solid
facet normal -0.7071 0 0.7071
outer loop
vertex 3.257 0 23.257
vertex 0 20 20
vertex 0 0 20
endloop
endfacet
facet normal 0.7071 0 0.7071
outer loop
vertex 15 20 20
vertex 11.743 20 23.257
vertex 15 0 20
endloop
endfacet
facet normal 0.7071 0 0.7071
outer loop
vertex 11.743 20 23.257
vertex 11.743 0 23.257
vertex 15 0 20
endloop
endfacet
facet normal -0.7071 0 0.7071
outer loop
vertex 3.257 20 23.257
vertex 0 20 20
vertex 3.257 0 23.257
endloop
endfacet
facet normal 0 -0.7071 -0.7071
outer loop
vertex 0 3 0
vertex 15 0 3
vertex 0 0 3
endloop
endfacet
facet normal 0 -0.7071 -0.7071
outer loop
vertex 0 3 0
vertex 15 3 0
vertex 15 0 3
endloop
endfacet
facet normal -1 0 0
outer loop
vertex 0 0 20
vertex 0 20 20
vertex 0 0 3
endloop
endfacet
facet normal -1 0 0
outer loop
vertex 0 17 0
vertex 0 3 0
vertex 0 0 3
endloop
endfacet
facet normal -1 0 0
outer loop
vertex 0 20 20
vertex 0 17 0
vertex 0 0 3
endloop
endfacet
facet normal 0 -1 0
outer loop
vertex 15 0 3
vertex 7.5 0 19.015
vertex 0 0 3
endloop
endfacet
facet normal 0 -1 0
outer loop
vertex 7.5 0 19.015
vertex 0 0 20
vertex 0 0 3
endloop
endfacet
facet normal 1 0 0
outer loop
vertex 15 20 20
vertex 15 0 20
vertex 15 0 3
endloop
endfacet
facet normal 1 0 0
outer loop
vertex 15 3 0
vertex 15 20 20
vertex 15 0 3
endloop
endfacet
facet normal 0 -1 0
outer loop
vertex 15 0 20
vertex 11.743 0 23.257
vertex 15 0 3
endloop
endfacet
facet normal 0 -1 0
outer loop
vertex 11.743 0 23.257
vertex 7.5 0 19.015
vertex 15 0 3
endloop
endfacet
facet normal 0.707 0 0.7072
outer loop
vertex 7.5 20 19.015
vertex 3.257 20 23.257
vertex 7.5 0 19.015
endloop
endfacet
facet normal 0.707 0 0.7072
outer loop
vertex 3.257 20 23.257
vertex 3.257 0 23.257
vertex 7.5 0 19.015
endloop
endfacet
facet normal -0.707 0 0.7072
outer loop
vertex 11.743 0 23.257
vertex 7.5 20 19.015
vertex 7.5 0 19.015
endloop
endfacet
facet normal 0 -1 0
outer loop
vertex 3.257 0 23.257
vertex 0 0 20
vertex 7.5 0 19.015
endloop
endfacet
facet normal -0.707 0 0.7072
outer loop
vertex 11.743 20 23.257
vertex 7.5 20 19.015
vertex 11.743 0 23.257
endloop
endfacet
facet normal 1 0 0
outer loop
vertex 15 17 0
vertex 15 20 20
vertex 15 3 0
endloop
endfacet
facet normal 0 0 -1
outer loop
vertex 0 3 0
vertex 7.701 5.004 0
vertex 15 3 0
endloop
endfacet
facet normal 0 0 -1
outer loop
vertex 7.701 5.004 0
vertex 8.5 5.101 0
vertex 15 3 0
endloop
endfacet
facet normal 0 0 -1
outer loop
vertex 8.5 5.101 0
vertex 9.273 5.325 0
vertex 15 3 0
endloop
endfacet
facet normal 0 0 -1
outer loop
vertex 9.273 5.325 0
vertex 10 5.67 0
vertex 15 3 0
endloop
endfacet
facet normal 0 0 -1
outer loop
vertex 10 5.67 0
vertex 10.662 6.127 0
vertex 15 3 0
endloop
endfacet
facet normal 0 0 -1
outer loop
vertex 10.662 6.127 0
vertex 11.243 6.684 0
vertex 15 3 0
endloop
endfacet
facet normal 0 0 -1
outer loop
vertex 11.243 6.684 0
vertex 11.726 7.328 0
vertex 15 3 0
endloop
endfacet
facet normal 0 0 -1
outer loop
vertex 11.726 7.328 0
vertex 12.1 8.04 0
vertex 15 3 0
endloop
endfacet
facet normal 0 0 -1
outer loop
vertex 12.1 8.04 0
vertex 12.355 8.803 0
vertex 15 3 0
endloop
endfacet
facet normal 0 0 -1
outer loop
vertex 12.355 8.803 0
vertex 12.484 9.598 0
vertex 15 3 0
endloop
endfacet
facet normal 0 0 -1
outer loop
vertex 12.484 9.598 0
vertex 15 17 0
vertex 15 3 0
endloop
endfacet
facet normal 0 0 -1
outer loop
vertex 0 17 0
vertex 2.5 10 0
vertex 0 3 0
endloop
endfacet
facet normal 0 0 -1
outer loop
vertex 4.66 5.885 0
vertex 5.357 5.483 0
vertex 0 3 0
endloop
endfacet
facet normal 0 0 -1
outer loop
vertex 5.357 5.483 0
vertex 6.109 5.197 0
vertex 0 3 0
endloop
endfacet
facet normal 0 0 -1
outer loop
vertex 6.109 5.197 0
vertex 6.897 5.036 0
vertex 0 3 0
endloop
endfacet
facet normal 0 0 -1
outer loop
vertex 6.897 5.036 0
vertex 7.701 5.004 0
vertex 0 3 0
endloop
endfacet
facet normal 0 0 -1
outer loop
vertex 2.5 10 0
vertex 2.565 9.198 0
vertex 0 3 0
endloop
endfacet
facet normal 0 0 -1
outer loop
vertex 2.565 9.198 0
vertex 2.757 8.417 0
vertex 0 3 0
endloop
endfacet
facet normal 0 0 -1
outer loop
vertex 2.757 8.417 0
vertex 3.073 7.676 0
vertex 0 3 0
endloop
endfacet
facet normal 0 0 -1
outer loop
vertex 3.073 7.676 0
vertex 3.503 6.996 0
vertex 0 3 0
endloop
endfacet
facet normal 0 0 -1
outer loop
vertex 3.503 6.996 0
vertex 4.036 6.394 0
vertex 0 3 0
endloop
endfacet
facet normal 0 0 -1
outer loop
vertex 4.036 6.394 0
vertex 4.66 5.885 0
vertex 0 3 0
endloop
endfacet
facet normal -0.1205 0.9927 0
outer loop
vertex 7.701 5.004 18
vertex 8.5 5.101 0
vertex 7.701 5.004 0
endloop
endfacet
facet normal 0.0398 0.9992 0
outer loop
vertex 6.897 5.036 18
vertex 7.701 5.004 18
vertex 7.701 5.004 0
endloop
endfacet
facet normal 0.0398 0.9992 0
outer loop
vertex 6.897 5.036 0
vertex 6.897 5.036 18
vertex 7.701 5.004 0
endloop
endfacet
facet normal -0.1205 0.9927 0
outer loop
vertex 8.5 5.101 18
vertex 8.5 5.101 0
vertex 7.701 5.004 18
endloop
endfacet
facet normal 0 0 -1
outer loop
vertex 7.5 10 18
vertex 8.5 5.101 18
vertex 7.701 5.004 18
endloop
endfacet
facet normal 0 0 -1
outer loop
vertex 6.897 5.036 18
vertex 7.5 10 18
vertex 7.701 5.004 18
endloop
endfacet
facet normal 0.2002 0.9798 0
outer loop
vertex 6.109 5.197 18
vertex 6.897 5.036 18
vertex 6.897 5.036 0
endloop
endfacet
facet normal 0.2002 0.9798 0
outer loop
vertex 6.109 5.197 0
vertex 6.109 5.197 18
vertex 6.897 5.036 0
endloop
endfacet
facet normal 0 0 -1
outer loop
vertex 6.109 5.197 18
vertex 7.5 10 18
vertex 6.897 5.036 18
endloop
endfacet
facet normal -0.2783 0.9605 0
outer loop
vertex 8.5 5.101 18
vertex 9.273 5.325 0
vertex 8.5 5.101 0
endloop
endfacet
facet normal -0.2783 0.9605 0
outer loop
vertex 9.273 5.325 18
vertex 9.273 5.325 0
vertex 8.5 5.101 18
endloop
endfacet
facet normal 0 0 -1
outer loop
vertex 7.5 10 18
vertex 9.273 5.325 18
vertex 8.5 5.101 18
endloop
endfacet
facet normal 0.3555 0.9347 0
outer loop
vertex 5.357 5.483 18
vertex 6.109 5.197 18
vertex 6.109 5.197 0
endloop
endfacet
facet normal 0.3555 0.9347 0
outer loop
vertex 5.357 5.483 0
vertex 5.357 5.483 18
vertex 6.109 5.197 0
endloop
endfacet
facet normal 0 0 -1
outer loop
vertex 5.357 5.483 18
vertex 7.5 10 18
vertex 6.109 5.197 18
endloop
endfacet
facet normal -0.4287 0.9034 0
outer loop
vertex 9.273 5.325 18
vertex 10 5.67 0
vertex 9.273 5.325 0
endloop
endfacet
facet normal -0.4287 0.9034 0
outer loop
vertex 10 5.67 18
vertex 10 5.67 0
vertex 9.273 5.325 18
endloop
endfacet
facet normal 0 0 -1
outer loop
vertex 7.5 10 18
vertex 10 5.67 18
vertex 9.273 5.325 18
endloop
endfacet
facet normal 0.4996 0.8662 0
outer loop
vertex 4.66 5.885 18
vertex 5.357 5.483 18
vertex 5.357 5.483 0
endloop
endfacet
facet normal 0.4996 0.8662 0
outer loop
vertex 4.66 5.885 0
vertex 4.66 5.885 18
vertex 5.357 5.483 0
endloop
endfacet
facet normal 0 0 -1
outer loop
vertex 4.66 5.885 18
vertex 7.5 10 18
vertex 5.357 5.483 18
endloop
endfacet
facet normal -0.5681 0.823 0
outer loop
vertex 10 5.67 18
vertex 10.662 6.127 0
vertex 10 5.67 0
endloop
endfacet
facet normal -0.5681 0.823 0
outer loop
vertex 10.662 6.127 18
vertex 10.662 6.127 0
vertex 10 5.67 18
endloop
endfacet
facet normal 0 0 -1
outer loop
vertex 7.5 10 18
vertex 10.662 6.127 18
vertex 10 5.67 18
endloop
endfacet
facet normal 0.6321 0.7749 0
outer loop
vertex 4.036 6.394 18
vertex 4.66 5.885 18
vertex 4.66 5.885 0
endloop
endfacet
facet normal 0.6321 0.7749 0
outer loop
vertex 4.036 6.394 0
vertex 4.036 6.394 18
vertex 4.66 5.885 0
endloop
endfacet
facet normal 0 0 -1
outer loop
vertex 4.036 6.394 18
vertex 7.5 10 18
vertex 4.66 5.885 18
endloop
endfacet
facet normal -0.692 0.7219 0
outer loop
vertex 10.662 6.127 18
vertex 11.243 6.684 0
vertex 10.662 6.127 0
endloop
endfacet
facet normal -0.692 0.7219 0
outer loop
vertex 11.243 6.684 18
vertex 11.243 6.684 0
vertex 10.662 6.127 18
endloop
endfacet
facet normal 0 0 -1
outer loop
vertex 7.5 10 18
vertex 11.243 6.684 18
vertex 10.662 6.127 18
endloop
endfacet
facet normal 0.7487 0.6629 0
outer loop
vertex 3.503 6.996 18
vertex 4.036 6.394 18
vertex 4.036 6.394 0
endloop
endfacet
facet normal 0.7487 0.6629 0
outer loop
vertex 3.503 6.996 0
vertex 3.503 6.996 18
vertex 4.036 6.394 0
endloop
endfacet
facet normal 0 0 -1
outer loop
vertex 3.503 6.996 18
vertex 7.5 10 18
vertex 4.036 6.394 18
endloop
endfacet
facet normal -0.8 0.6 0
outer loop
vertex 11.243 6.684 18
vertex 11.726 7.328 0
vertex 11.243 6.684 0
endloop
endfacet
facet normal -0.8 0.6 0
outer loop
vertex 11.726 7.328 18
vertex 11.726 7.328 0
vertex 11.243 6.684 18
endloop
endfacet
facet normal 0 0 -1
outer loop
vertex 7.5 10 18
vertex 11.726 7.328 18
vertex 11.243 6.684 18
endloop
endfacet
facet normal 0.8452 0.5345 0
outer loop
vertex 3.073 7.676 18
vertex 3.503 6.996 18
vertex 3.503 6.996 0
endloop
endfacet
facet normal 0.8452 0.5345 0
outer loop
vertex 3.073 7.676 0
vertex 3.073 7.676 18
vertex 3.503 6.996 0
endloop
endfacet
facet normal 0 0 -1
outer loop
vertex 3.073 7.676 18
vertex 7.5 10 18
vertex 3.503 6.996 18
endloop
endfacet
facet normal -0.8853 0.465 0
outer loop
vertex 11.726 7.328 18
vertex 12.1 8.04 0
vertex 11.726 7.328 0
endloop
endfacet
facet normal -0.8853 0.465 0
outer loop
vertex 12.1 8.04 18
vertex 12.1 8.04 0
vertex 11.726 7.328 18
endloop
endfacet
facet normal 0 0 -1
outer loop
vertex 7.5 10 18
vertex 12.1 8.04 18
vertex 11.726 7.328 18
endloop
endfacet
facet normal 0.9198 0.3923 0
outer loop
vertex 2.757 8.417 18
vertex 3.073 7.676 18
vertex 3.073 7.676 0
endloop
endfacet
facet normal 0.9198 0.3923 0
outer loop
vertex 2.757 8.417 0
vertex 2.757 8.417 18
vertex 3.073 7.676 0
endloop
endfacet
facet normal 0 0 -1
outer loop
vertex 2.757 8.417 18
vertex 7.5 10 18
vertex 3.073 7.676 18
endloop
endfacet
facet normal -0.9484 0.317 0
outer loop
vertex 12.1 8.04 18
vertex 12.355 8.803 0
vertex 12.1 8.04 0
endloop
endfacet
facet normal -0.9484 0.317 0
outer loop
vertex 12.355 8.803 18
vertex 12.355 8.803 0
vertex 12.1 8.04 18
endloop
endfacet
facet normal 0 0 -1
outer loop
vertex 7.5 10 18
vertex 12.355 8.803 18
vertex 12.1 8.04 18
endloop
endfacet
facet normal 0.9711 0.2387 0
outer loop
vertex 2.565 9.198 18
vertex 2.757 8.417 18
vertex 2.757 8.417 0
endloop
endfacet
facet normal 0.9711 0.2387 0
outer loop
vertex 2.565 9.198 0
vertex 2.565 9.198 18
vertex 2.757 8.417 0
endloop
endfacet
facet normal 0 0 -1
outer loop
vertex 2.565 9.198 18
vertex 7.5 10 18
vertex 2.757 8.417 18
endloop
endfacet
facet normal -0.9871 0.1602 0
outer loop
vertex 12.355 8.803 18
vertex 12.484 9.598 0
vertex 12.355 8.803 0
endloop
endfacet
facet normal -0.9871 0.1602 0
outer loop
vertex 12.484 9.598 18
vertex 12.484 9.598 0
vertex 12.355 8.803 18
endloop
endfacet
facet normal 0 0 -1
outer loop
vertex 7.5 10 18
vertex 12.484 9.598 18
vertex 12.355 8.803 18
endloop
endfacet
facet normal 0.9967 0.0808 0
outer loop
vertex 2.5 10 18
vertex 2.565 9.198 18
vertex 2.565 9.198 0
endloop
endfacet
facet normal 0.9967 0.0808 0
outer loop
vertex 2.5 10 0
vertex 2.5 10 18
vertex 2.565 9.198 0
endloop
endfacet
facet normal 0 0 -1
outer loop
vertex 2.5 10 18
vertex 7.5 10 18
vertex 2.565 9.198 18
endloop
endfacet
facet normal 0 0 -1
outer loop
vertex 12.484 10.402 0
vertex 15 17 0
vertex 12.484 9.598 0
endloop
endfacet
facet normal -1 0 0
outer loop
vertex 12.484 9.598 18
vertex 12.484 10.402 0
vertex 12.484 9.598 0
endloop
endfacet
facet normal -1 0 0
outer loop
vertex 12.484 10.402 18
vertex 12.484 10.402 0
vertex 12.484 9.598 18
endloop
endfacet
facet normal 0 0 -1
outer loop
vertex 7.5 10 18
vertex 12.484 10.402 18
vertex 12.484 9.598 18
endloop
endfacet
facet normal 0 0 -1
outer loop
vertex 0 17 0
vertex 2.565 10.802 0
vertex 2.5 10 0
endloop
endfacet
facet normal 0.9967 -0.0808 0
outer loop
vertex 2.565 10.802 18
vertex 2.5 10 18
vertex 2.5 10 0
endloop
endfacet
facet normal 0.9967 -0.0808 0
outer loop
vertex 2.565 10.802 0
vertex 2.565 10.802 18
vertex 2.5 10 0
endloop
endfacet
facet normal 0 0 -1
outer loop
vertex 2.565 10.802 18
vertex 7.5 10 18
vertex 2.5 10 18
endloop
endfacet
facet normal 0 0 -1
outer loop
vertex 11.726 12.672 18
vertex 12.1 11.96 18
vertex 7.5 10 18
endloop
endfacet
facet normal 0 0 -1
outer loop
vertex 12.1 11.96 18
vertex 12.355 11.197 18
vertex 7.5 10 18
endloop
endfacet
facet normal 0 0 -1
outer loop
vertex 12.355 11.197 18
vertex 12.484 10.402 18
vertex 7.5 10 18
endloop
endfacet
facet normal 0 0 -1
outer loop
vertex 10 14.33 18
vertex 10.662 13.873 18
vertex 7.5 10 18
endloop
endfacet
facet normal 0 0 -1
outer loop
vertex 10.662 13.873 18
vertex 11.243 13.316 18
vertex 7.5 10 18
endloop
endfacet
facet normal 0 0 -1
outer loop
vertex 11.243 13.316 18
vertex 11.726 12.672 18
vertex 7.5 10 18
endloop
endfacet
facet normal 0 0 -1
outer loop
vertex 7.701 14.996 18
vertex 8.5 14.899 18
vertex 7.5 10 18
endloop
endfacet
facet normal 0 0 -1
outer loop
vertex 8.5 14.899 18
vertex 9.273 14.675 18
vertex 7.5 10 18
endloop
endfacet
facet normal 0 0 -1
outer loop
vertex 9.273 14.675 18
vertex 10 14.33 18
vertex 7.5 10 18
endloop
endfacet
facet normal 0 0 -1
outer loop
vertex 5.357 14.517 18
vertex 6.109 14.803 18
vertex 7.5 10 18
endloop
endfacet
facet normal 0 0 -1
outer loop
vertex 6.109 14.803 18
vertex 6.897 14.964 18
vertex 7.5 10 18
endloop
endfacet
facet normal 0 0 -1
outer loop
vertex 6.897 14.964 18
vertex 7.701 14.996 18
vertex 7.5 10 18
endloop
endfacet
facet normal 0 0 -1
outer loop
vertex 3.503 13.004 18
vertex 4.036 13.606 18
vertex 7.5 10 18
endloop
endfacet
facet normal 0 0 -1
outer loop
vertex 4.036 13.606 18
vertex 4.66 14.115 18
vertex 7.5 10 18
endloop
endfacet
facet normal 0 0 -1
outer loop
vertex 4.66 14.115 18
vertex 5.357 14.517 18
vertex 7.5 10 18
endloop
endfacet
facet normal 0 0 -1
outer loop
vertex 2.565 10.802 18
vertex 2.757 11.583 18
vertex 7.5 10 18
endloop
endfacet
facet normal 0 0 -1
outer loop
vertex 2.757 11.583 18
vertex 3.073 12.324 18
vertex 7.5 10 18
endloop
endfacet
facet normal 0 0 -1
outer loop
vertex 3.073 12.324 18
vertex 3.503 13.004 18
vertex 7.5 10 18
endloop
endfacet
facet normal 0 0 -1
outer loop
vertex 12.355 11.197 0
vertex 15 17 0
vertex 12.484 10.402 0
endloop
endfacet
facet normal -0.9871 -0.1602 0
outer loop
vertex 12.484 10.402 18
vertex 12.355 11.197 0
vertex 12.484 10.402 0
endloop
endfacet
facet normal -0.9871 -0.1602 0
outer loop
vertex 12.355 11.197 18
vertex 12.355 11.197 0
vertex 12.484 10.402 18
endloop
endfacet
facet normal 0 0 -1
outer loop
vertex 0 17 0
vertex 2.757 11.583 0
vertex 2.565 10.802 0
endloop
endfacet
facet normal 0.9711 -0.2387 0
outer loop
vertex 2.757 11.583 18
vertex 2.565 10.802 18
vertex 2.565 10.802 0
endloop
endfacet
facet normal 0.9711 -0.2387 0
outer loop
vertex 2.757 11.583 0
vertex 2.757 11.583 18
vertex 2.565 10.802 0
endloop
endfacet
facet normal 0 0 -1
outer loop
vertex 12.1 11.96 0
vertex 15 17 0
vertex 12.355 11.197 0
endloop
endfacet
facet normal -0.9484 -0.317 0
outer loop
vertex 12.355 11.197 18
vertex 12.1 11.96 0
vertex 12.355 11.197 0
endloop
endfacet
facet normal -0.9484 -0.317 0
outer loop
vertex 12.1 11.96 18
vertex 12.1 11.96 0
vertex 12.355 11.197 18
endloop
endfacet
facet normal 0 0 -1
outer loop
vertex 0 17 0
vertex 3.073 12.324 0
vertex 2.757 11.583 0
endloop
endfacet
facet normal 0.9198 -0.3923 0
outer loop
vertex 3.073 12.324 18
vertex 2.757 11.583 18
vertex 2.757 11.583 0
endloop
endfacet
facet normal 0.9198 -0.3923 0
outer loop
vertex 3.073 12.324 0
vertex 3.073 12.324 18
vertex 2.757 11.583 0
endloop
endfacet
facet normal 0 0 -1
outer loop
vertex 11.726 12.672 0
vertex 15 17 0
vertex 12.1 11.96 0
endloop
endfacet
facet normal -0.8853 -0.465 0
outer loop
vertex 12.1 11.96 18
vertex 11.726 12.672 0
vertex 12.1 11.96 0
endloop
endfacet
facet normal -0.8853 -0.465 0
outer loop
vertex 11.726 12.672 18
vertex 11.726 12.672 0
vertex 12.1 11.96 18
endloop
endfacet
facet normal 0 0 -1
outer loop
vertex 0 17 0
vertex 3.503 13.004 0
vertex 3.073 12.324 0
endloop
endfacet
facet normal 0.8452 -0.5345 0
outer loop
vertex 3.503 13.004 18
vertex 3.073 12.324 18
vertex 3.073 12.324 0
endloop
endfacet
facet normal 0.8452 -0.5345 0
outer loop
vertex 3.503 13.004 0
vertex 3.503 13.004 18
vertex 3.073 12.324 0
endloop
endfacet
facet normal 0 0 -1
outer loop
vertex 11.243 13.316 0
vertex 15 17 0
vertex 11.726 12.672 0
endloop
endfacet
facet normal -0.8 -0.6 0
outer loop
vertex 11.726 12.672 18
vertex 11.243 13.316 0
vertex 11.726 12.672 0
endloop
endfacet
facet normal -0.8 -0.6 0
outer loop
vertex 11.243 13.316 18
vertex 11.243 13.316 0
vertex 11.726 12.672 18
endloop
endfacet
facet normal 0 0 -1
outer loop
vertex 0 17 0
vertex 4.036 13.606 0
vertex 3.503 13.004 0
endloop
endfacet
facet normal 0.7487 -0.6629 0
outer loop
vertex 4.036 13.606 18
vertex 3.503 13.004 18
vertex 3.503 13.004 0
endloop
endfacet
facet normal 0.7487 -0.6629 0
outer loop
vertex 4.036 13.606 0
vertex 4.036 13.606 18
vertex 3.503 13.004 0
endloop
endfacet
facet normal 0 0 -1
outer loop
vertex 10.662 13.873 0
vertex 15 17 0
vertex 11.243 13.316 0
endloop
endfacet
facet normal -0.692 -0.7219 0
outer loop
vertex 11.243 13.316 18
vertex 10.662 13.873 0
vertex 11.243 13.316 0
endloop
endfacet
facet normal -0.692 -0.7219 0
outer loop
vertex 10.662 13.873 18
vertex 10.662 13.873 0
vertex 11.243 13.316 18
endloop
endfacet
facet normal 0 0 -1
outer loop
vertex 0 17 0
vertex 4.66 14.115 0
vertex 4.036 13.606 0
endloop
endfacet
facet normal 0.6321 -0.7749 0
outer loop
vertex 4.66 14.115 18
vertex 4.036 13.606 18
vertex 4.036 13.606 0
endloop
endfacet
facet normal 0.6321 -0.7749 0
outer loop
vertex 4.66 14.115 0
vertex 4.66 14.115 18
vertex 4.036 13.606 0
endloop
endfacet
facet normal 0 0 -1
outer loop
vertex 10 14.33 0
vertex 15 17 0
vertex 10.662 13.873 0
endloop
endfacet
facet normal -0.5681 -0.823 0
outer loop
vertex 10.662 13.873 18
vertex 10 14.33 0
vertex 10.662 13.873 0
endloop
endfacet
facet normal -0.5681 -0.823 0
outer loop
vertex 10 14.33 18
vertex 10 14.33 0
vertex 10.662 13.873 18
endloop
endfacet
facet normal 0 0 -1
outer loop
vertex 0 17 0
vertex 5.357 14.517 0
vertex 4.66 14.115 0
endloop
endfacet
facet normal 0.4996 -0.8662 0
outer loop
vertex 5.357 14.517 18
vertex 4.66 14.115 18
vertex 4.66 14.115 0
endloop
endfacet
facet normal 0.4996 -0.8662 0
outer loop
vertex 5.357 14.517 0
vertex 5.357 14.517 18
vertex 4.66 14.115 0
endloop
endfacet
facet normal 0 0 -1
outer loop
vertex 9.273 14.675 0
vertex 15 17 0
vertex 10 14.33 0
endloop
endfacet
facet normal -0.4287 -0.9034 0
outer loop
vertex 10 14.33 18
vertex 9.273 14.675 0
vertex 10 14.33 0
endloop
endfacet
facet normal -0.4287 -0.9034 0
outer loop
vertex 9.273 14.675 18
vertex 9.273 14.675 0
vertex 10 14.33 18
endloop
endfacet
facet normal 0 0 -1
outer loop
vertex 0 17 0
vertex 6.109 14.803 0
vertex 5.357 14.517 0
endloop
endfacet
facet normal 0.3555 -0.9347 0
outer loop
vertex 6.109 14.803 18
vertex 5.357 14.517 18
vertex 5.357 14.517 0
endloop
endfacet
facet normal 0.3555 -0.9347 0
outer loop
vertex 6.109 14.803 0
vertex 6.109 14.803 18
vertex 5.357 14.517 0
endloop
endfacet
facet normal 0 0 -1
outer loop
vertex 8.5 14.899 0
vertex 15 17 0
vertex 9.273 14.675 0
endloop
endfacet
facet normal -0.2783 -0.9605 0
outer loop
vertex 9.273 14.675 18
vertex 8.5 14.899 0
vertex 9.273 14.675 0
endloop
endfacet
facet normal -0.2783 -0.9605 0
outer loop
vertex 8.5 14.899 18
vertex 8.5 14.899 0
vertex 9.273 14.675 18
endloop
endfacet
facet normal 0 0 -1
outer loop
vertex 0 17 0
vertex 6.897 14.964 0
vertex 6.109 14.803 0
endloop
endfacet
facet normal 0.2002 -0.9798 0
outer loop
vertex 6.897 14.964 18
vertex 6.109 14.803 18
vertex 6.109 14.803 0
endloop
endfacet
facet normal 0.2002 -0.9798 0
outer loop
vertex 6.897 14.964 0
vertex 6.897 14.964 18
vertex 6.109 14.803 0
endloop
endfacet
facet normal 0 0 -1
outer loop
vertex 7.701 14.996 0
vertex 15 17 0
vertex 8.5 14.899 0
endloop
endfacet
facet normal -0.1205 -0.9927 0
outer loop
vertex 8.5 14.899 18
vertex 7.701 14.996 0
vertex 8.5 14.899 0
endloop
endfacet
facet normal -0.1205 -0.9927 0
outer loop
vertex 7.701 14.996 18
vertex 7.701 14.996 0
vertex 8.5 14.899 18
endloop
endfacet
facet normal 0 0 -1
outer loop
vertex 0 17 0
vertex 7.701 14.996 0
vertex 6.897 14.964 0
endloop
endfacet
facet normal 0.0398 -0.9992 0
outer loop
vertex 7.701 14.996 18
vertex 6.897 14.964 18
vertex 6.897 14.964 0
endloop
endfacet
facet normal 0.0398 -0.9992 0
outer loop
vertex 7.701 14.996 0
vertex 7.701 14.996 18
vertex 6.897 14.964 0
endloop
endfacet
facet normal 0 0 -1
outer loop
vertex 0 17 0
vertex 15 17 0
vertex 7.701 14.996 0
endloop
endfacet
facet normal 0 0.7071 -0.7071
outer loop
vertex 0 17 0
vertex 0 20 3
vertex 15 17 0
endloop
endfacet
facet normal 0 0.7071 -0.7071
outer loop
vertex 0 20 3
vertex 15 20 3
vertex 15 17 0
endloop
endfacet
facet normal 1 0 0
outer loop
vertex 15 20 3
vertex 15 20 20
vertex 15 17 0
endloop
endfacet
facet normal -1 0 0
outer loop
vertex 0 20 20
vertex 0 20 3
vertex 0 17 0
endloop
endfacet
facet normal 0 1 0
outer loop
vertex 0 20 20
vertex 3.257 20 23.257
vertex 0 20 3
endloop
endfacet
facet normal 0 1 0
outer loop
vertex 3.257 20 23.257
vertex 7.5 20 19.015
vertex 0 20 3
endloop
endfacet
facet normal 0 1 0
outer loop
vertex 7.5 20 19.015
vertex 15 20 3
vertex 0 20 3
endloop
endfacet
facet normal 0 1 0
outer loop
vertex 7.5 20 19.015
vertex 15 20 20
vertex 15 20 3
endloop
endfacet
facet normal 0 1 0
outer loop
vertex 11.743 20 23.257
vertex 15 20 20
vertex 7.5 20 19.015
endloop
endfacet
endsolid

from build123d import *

# Parameters (mm, degrees)
EXTRUDE_1_DEPTH     = 20
SKETCH_2_R          = 5
CUT_EXTRUDE_1_DEPTH = 18
CHAMFER_1_SIZE      = 3


with BuildPart() as part:
    # 草圖1 → 填料-伸長1 (new body)
    with BuildSketch(Plane(origin=(0, 0, 0), x_dir=(1, 0, 0), z_dir=(0, 1, 0))):
        Polygon((0, 0), (0, -20), (3.257359313, -23.257359313), (7.5, -19.014718626), (11.742640687, -23.257359313), (15, -20), (15, 0), align=None)
    extrude(amount=EXTRUDE_1_DEPTH)

    # 草圖2 → 除料-伸長1 (cut)
    with BuildSketch(Plane(origin=(0, 0, 0), x_dir=(-1, 0, 0), z_dir=(0, 0, -1))):
        with Locations((-7.5, 10)):
            Circle(SKETCH_2_R)
    extrude(amount=-CUT_EXTRUDE_1_DEPTH, mode=Mode.SUBTRACT)

    # 導角1
    chamfer_1_edges = [part.edges().sort_by_distance(p)[0] for p in [
        (7.5, 20, 0),
        (7.5, 0, 0),
    ]]
    chamfer(chamfer_1_edges, length=CHAMFER_1_SIZE)


solid = part.part
